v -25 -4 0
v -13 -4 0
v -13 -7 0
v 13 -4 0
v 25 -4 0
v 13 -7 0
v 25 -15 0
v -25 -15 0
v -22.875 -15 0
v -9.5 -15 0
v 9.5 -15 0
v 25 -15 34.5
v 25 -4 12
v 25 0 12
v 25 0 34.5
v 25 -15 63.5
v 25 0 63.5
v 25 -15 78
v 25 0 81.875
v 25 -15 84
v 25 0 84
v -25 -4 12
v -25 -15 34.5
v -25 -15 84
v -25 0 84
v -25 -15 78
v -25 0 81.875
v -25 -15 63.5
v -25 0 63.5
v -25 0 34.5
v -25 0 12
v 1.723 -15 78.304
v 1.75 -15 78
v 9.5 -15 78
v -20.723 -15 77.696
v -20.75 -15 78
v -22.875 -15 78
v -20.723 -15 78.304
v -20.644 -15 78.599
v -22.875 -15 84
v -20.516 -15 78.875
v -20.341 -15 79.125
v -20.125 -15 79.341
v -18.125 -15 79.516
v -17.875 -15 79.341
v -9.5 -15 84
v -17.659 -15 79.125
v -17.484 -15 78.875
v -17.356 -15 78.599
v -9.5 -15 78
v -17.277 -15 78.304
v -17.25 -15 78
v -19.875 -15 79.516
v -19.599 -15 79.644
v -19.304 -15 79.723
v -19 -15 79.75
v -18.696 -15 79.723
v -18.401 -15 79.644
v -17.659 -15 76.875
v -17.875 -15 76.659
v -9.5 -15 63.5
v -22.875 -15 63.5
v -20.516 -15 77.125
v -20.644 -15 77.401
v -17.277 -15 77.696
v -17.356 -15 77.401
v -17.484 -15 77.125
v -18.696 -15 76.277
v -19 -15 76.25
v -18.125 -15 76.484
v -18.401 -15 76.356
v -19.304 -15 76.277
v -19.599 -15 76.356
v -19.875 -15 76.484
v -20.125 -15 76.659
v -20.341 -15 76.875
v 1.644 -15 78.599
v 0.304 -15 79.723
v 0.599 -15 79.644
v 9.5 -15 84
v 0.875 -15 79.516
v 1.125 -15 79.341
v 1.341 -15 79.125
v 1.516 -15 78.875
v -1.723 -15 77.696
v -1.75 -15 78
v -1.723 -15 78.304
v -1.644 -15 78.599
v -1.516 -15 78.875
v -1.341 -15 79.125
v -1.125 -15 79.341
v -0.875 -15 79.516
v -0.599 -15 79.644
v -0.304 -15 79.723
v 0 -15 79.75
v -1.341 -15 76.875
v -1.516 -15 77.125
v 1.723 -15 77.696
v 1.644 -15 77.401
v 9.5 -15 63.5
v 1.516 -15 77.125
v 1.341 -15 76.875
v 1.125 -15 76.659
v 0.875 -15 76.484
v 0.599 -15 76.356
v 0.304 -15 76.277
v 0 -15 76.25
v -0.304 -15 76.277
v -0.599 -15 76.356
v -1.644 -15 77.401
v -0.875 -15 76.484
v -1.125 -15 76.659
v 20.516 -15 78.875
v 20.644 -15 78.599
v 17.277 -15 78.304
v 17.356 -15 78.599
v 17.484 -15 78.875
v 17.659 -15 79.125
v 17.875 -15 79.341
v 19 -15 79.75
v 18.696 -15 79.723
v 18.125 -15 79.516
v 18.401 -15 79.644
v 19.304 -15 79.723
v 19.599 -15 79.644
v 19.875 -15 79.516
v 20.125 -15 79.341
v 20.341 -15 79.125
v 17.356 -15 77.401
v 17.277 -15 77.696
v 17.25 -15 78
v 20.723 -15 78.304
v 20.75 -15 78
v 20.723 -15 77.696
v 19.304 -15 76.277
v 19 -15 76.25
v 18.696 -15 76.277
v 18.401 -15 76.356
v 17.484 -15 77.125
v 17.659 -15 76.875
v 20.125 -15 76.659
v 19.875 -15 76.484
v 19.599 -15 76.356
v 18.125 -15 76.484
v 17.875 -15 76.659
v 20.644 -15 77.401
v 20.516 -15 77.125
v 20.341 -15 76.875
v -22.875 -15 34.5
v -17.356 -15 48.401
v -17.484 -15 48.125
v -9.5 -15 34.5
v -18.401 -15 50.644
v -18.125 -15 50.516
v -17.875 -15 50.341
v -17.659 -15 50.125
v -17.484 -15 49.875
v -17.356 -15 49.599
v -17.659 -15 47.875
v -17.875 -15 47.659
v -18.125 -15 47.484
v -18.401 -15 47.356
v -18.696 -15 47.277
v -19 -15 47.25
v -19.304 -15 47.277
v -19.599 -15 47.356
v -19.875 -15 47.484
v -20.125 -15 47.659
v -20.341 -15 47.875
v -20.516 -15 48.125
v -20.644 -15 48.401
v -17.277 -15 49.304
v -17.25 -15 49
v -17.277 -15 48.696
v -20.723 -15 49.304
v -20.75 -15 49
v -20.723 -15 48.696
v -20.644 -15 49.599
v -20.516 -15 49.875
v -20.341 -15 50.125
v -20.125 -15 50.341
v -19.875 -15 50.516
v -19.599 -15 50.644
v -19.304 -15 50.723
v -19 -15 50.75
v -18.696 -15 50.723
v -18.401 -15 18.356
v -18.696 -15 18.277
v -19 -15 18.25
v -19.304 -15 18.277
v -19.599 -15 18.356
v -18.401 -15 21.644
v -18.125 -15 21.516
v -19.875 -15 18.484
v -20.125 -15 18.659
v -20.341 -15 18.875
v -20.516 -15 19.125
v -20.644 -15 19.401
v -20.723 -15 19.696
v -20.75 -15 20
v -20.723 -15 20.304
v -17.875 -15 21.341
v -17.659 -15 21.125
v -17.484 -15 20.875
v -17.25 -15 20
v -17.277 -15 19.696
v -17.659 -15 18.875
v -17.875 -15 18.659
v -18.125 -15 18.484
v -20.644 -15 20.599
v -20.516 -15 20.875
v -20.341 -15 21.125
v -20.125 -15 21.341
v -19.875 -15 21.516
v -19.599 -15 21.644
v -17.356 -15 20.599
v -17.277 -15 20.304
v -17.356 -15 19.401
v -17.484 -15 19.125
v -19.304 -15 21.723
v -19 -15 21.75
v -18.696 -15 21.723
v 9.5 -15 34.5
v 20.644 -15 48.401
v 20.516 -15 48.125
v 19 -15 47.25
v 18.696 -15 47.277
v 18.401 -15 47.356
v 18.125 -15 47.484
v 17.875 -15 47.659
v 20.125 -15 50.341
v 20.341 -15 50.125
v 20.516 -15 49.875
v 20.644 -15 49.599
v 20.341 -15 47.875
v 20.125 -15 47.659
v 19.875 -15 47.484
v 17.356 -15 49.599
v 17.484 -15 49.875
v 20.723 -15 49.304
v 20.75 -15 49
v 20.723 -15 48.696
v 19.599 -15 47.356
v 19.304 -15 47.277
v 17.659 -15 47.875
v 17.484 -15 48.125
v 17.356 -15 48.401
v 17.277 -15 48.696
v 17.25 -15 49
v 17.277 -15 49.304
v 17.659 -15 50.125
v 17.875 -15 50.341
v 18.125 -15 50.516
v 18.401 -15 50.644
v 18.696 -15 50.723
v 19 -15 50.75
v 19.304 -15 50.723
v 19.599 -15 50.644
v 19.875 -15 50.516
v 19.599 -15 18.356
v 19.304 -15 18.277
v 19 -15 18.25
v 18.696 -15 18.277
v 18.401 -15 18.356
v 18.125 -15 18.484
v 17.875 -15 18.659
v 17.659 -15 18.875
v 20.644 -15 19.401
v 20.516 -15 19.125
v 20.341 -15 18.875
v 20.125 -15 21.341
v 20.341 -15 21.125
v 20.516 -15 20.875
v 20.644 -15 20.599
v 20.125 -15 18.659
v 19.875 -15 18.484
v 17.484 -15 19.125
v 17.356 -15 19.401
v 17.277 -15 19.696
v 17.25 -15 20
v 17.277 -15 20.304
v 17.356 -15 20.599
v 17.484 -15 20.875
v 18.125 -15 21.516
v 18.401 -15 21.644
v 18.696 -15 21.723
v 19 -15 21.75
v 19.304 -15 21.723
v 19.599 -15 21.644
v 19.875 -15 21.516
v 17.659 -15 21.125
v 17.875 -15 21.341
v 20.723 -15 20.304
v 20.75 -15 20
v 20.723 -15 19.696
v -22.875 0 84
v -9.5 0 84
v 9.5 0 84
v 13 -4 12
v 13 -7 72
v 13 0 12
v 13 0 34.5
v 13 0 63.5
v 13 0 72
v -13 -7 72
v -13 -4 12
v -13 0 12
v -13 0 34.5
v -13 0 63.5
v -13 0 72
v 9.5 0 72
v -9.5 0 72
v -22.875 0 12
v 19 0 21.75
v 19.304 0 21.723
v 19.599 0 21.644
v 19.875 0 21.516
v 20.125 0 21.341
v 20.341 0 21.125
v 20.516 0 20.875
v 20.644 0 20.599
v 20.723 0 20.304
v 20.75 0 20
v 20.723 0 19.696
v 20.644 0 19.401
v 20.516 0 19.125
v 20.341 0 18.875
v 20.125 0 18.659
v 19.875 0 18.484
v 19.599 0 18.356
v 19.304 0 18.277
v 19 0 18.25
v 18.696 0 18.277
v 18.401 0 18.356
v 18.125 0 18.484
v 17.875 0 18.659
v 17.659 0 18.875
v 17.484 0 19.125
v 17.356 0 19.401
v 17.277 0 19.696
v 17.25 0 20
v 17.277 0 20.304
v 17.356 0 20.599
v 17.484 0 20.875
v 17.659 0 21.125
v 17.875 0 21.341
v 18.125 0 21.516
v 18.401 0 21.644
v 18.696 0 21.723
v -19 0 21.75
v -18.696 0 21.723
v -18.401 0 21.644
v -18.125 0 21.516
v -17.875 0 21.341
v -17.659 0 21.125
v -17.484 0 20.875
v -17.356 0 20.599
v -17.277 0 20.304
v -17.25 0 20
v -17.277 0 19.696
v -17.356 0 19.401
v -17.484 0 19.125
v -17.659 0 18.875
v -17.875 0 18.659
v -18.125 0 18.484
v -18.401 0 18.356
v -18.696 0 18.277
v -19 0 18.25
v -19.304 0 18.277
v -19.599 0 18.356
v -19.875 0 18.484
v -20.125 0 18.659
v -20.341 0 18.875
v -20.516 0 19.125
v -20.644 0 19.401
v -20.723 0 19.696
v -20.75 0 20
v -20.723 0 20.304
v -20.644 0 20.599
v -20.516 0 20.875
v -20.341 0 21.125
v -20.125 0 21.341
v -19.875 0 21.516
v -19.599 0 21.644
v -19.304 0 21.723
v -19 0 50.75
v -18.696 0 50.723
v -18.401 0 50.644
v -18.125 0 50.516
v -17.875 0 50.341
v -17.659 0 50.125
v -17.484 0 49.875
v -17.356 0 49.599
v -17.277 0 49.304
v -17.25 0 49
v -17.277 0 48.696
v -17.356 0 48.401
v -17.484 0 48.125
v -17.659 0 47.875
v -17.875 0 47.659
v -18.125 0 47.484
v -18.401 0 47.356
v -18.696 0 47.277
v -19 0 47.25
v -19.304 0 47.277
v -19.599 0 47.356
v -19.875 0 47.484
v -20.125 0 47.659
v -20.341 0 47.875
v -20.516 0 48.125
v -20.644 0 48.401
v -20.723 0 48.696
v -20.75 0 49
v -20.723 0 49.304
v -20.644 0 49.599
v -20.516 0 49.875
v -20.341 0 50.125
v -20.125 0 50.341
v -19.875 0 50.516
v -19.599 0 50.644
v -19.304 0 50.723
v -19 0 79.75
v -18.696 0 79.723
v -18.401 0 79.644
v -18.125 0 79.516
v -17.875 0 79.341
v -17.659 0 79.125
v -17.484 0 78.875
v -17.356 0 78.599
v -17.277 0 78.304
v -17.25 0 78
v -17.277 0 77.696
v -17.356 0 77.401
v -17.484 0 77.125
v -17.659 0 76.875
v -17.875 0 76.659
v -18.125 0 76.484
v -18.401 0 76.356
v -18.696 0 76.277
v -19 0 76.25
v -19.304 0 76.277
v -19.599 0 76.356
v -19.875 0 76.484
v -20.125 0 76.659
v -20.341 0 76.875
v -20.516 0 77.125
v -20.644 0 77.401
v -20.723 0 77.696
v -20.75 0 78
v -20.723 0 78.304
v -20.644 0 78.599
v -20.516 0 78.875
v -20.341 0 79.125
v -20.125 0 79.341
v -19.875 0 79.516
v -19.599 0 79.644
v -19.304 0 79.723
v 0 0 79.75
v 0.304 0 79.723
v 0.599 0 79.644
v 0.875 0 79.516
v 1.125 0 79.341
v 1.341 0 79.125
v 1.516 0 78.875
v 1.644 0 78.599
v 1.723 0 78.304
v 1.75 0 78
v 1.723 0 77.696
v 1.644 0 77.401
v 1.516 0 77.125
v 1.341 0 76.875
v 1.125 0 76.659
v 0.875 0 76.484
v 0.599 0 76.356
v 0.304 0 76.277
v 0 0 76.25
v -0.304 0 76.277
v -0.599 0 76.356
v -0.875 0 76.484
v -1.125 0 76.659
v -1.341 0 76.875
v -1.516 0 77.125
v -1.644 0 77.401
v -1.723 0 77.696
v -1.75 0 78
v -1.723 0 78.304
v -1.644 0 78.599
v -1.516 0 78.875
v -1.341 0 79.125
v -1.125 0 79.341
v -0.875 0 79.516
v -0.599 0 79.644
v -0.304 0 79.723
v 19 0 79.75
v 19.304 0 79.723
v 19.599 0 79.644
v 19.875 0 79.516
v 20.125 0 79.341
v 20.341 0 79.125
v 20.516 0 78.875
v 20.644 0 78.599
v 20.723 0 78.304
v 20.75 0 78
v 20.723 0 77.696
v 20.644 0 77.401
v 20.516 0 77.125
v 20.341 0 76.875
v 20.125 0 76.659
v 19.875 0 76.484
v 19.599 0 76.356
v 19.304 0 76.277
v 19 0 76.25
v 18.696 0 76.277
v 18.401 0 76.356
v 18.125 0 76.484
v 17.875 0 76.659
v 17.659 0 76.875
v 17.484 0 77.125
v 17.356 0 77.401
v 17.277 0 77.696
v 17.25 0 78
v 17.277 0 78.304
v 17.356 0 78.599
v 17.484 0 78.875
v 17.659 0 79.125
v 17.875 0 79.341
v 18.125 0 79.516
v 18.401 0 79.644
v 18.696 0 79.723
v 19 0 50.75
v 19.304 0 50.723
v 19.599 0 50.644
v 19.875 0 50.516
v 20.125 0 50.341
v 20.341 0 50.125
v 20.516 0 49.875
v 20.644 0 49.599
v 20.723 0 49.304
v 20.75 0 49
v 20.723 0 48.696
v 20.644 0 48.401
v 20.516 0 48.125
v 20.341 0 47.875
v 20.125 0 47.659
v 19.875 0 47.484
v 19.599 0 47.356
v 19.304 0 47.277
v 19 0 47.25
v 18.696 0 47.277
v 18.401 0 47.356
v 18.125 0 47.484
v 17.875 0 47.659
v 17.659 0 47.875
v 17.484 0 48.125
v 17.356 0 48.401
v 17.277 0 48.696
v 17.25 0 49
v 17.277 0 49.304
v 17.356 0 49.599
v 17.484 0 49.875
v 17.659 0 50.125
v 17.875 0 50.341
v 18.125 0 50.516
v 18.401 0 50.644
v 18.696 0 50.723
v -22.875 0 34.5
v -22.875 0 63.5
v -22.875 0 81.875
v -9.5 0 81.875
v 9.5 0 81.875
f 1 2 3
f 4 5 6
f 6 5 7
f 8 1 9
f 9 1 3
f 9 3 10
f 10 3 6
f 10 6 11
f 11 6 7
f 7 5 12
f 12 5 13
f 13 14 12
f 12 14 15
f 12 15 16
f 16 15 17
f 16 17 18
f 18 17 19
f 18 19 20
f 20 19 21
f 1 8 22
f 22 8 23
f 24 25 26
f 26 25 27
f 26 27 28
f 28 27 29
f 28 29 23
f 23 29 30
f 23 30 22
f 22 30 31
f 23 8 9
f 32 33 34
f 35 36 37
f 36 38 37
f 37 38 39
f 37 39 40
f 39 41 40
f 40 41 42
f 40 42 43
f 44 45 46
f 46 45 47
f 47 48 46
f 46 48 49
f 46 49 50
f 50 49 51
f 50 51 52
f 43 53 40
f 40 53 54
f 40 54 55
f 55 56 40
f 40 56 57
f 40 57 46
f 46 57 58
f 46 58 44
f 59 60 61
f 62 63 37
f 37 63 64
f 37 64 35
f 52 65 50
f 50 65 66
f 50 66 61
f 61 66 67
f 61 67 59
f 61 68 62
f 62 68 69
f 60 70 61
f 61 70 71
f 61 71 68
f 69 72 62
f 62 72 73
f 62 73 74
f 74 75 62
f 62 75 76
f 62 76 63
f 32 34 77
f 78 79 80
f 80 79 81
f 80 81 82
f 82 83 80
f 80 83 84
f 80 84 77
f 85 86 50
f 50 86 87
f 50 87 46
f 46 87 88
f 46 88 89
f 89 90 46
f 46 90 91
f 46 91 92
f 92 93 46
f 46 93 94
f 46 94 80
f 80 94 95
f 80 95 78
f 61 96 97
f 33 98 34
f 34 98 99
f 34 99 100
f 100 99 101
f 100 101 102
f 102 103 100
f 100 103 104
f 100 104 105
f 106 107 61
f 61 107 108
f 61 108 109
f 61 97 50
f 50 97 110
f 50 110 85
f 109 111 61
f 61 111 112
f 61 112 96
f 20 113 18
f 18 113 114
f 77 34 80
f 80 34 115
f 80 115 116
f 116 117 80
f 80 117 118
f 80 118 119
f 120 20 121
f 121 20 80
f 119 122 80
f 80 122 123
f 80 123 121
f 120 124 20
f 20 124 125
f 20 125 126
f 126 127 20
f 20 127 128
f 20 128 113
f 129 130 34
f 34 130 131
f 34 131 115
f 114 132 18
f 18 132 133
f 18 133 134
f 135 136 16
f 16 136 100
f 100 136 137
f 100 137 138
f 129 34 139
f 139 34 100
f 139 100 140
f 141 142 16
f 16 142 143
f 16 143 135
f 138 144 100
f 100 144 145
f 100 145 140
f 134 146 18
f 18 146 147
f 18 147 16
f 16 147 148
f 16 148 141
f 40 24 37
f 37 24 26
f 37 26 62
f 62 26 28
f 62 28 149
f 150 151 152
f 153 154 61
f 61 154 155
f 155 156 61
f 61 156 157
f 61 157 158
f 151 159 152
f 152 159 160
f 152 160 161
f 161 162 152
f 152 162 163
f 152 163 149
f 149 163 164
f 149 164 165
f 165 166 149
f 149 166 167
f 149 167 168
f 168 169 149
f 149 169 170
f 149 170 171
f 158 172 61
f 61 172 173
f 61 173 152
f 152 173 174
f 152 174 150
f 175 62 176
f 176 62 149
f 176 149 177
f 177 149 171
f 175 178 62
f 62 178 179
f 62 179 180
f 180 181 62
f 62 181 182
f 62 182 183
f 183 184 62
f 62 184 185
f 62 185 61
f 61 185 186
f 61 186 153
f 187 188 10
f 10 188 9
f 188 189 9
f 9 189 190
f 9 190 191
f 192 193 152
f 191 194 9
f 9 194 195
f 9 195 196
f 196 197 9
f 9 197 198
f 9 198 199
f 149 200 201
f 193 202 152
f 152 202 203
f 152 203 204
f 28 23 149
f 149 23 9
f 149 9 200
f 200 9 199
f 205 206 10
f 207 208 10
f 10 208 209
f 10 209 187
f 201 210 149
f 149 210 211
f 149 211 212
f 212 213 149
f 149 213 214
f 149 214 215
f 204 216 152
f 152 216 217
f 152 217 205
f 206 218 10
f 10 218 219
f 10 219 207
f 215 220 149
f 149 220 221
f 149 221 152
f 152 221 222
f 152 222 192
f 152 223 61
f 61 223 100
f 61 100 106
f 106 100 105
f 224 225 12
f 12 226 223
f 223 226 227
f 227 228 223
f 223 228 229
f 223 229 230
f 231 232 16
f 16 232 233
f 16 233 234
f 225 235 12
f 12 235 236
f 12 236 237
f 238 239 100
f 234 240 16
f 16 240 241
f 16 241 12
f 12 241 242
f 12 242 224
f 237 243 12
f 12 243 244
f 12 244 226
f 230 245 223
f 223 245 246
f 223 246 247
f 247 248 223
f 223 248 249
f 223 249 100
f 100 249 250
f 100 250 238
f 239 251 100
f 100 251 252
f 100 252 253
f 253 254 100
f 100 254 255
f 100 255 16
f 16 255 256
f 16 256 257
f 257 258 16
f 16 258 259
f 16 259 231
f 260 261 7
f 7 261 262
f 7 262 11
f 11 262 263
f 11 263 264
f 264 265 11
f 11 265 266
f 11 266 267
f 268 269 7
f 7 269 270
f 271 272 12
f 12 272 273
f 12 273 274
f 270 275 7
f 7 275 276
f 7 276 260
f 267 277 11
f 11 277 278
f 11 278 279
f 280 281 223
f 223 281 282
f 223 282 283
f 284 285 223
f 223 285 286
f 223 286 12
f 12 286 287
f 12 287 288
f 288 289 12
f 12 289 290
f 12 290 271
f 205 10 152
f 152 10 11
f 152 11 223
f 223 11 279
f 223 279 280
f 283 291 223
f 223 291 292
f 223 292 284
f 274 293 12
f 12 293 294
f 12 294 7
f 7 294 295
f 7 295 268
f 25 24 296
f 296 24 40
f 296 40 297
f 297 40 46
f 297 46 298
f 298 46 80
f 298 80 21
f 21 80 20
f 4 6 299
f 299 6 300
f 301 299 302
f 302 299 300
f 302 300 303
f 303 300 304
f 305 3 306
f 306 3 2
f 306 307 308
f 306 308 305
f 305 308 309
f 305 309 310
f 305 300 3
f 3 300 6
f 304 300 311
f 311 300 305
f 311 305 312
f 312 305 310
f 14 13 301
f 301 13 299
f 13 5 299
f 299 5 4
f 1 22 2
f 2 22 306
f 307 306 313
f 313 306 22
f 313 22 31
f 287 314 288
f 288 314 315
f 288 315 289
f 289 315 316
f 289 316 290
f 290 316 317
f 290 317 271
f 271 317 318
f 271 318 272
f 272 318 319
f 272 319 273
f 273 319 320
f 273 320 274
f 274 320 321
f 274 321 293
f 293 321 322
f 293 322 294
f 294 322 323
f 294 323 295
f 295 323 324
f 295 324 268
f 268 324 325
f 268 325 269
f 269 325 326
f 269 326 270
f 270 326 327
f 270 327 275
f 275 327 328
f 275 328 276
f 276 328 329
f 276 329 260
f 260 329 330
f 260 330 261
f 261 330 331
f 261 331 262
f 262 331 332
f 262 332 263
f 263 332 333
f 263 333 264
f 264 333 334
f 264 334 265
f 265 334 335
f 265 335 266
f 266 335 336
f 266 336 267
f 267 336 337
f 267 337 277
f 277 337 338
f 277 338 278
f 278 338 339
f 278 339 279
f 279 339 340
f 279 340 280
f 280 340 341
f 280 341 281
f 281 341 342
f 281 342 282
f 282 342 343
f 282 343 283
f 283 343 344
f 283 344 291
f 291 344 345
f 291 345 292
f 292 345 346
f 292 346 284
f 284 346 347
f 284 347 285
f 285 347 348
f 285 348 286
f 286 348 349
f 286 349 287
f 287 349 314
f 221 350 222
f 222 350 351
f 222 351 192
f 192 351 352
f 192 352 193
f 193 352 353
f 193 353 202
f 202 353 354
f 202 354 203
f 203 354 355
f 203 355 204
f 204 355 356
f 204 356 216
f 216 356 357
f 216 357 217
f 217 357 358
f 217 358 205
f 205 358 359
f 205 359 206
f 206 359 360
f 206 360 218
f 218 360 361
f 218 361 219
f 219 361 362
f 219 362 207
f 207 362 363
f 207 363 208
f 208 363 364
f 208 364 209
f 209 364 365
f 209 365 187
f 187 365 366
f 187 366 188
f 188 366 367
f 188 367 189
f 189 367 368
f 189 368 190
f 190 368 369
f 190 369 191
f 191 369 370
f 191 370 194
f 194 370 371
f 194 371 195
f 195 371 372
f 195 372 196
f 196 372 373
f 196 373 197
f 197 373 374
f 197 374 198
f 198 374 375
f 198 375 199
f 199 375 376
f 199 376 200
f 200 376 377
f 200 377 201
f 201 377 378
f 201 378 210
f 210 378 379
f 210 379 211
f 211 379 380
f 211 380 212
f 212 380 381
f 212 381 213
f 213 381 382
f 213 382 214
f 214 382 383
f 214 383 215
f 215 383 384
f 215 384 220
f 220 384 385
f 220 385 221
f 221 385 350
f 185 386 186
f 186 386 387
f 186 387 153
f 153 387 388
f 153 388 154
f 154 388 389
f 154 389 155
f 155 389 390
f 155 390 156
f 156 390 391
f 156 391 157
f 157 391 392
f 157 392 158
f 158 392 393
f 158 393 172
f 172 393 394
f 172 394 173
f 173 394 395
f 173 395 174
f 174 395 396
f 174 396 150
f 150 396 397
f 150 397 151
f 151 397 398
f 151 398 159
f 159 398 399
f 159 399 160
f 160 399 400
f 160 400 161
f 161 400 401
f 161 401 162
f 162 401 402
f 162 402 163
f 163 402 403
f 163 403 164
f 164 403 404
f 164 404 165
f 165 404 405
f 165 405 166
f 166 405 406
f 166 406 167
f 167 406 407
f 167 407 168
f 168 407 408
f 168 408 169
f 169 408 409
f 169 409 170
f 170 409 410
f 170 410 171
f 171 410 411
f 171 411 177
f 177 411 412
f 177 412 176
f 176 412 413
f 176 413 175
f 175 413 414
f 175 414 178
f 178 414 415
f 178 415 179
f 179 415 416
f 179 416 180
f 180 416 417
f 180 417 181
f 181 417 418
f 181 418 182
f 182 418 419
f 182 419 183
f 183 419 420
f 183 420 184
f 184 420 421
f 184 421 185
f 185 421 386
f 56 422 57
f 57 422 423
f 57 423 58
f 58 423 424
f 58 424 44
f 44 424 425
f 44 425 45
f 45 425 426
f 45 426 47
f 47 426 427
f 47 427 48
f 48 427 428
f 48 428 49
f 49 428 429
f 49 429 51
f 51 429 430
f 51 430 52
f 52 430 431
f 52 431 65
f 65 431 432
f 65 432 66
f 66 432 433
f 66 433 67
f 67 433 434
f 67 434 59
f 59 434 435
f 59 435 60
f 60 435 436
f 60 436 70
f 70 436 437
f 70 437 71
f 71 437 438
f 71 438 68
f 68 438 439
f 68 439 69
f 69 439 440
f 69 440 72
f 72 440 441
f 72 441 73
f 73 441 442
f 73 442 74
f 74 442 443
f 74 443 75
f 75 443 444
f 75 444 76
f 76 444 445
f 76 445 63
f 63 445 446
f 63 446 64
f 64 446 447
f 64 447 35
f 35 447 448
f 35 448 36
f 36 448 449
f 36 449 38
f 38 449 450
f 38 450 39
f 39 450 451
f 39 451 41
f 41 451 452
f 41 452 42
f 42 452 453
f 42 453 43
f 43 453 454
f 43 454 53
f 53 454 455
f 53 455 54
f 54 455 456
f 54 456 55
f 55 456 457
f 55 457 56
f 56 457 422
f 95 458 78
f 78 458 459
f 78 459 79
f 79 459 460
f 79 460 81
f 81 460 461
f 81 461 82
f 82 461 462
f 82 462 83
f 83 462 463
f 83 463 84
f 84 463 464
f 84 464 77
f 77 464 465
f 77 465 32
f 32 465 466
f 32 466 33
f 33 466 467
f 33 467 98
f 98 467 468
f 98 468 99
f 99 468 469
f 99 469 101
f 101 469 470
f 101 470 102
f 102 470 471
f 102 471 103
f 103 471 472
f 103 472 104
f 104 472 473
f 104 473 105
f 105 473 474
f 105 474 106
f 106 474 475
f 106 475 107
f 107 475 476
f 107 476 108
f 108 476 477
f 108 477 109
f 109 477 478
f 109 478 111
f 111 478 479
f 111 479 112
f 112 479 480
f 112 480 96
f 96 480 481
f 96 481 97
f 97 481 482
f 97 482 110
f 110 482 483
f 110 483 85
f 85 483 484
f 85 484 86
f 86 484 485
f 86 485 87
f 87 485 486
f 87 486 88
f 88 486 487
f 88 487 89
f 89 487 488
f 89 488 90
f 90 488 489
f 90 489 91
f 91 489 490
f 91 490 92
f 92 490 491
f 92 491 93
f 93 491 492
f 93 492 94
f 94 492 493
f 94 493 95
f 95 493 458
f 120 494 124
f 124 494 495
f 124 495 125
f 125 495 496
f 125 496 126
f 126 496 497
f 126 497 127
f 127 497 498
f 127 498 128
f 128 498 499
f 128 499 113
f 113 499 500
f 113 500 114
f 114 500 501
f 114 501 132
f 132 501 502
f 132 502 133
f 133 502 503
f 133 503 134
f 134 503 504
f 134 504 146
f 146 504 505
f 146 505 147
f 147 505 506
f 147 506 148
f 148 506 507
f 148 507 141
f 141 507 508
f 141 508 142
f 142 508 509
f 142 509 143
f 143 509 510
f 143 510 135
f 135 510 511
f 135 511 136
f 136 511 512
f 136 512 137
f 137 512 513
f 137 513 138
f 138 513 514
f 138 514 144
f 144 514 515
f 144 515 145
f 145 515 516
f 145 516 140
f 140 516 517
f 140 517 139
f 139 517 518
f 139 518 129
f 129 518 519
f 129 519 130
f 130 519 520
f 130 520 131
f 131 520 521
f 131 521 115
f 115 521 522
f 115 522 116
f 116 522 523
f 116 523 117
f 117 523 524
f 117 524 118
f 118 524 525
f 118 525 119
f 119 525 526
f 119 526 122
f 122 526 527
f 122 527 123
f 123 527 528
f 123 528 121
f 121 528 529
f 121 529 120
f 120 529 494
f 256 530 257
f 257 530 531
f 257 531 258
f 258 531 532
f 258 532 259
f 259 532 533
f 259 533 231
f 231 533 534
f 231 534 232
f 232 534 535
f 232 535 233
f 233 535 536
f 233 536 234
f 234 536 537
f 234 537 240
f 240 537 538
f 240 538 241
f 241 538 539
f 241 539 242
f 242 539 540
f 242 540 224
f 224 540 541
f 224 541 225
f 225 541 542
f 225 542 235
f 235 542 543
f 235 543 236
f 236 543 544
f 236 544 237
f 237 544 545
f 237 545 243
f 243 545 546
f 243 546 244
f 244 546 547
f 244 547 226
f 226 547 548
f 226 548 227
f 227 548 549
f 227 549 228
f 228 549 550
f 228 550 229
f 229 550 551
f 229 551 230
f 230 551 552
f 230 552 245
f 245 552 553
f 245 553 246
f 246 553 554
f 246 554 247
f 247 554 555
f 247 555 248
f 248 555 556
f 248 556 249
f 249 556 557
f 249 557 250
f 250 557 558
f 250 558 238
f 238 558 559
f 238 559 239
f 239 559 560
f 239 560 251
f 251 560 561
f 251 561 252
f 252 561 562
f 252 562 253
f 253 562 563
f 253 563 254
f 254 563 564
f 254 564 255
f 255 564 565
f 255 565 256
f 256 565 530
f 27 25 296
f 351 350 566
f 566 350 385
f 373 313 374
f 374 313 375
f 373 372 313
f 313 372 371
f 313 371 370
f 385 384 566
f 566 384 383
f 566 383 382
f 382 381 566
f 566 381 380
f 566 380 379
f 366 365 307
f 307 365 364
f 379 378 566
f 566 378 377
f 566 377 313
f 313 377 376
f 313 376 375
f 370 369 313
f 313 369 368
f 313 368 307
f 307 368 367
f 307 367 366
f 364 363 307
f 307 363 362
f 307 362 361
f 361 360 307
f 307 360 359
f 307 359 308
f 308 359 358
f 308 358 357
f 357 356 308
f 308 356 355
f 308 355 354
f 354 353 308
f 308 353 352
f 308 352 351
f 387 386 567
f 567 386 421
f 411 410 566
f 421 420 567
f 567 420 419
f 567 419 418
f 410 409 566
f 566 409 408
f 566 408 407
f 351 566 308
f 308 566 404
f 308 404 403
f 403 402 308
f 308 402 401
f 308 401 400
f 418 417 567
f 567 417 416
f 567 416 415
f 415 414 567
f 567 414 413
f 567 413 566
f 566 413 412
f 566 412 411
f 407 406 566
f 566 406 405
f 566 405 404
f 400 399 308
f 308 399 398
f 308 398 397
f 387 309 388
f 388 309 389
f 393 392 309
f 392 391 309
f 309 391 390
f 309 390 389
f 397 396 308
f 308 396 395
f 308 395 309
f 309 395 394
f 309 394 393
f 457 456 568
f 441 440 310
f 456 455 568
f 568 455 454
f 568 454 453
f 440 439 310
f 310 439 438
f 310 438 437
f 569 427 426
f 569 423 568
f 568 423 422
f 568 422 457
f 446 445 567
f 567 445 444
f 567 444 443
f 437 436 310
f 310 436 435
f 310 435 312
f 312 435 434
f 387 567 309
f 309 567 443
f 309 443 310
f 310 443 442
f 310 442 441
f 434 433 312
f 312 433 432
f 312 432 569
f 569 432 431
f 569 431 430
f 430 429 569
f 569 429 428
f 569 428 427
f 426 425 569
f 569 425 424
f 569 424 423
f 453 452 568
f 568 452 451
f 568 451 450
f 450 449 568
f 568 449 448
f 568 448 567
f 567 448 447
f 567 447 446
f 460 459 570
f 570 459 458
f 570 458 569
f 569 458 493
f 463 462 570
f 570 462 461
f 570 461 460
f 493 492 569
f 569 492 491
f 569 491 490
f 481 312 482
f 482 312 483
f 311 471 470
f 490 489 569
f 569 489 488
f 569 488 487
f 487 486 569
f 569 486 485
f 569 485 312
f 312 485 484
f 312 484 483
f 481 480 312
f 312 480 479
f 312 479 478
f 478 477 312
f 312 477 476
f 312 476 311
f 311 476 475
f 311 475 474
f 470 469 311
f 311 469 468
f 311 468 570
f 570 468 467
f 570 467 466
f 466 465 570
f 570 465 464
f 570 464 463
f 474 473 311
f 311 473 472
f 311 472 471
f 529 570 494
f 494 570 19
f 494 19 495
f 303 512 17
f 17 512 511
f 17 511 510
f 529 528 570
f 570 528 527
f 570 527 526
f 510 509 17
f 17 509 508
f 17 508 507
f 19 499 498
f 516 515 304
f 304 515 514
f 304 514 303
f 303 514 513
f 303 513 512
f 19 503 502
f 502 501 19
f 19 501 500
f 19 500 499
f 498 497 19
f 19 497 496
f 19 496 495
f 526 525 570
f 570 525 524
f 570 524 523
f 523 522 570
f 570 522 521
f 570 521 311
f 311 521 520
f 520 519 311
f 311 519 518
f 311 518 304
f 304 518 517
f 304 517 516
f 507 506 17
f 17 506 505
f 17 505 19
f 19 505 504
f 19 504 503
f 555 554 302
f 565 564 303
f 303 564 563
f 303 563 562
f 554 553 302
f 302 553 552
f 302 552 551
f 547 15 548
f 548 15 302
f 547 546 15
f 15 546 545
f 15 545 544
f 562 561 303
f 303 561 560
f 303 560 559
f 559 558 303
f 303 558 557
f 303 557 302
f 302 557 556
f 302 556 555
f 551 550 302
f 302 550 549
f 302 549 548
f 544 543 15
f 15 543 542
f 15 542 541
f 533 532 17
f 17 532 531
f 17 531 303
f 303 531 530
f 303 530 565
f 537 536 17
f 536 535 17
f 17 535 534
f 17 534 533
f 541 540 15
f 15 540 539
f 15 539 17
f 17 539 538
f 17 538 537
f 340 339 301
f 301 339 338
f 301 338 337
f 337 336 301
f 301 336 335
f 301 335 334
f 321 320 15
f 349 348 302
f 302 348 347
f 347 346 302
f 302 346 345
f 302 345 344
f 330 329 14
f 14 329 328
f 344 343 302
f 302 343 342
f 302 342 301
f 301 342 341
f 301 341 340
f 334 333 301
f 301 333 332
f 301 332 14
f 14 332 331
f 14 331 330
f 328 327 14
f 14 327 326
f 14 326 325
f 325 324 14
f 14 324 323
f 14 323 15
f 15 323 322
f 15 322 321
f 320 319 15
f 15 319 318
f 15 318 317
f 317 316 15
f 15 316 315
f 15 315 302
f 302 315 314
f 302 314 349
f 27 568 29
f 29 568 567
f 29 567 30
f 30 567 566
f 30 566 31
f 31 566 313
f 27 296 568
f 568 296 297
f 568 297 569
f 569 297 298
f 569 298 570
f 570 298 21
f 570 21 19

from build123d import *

# Parameters (mm, degrees)
SKETCH_1_W          = 50
SKETCH_1_H          = 30
EXTRUDE_1_DEPTH     = 84
SKETCH_2_W          = 26
SKETCH_2_H          = 14
CUT_EXTRUDE_1_DEPTH = 72
SKETCH_5_W          = 12
SKETCH_5_H          = 8
CUT_EXTRUDE_4_DEPTH = 94.407708461
SKETCH_6_W          = 12
SKETCH_6_H          = 8
CUT_EXTRUDE_5_DEPTH = 94.407708461
SKETCH_7_R          = 1.75
CUT_EXTRUDE_6_DEPTH = 93.633687177


with BuildPart() as part:
    # ｽｹｯﾁ1 → ﾎﾞｽ - 押し出し1 (new body)
    with BuildSketch(Plane.XY):
        Rectangle(SKETCH_1_W, SKETCH_1_H)
    extrude(amount=EXTRUDE_1_DEPTH)

    # ｽｹｯﾁ2 → ｶｯﾄ - 押し出し1 (cut)
    with BuildSketch(Plane(origin=(0, 0, 0), x_dir=(-1, 0, 0), z_dir=(0, 0, -1))):
        Rectangle(SKETCH_2_W, SKETCH_2_H)
    extrude(amount=-CUT_EXTRUDE_1_DEPTH, mode=Mode.SUBTRACT)

    # ｽｹｯﾁ5 → ｶｯﾄ - 押し出し4 (cut, through all)
    with BuildSketch(Plane.ZY.offset(-13)):
        with Locations((6, 0)):
            Rectangle(SKETCH_5_W, SKETCH_5_H)
    extrude(amount=-CUT_EXTRUDE_4_DEPTH, mode=Mode.SUBTRACT)

    # ｽｹｯﾁ6 → ｶｯﾄ - 押し出し5 (cut, through all)
    with BuildSketch(Plane(origin=(-13, 0, 0), x_dir=(0, 0, -1), z_dir=(1, 0, 0))):
        with Locations((-6, 0)):
            Rectangle(SKETCH_6_W, SKETCH_6_H)
    extrude(amount=-CUT_EXTRUDE_5_DEPTH, mode=Mode.SUBTRACT)

    # ｽｹｯﾁ7 → ｶｯﾄ - 押し出し6 (cut, through all)
    with BuildSketch(Plane(origin=(0, 15, 0), x_dir=(1, 0, 0), z_dir=(0, 1, 0))):
        with Locations(Location((19, -20, 0), (0, 0, 270))):
            Circle(SKETCH_7_R)
        with Locations(Location((19, -49, 0), (0, 0, 270))):
            Circle(SKETCH_7_R)
        with Locations(Location((19, -78, 0), (0, 0, 270))):
            Circle(SKETCH_7_R)
        with Locations(Location((0, -78, 0), (0, 0, 270))):
            Circle(SKETCH_7_R)
        with Locations(Location((-19, -78, 0), (0, 0, 270))):
            Circle(SKETCH_7_R)
        with Locations(Location((-19, -49, 0), (0, 0, 270))):
            Circle(SKETCH_7_R)
        with Locations(Location((-19, -20, 0), (0, 0, 270))):
            Circle(SKETCH_7_R)
    extrude(amount=-CUT_EXTRUDE_6_DEPTH, mode=Mode.SUBTRACT)

    # Surface Cut 1
    split(bisect_by=Plane(origin=(0, 0, 0), x_dir=(-1, 0, 0), z_dir=(0, -1, 0)), keep=Keep.TOP)


solid = part.part
